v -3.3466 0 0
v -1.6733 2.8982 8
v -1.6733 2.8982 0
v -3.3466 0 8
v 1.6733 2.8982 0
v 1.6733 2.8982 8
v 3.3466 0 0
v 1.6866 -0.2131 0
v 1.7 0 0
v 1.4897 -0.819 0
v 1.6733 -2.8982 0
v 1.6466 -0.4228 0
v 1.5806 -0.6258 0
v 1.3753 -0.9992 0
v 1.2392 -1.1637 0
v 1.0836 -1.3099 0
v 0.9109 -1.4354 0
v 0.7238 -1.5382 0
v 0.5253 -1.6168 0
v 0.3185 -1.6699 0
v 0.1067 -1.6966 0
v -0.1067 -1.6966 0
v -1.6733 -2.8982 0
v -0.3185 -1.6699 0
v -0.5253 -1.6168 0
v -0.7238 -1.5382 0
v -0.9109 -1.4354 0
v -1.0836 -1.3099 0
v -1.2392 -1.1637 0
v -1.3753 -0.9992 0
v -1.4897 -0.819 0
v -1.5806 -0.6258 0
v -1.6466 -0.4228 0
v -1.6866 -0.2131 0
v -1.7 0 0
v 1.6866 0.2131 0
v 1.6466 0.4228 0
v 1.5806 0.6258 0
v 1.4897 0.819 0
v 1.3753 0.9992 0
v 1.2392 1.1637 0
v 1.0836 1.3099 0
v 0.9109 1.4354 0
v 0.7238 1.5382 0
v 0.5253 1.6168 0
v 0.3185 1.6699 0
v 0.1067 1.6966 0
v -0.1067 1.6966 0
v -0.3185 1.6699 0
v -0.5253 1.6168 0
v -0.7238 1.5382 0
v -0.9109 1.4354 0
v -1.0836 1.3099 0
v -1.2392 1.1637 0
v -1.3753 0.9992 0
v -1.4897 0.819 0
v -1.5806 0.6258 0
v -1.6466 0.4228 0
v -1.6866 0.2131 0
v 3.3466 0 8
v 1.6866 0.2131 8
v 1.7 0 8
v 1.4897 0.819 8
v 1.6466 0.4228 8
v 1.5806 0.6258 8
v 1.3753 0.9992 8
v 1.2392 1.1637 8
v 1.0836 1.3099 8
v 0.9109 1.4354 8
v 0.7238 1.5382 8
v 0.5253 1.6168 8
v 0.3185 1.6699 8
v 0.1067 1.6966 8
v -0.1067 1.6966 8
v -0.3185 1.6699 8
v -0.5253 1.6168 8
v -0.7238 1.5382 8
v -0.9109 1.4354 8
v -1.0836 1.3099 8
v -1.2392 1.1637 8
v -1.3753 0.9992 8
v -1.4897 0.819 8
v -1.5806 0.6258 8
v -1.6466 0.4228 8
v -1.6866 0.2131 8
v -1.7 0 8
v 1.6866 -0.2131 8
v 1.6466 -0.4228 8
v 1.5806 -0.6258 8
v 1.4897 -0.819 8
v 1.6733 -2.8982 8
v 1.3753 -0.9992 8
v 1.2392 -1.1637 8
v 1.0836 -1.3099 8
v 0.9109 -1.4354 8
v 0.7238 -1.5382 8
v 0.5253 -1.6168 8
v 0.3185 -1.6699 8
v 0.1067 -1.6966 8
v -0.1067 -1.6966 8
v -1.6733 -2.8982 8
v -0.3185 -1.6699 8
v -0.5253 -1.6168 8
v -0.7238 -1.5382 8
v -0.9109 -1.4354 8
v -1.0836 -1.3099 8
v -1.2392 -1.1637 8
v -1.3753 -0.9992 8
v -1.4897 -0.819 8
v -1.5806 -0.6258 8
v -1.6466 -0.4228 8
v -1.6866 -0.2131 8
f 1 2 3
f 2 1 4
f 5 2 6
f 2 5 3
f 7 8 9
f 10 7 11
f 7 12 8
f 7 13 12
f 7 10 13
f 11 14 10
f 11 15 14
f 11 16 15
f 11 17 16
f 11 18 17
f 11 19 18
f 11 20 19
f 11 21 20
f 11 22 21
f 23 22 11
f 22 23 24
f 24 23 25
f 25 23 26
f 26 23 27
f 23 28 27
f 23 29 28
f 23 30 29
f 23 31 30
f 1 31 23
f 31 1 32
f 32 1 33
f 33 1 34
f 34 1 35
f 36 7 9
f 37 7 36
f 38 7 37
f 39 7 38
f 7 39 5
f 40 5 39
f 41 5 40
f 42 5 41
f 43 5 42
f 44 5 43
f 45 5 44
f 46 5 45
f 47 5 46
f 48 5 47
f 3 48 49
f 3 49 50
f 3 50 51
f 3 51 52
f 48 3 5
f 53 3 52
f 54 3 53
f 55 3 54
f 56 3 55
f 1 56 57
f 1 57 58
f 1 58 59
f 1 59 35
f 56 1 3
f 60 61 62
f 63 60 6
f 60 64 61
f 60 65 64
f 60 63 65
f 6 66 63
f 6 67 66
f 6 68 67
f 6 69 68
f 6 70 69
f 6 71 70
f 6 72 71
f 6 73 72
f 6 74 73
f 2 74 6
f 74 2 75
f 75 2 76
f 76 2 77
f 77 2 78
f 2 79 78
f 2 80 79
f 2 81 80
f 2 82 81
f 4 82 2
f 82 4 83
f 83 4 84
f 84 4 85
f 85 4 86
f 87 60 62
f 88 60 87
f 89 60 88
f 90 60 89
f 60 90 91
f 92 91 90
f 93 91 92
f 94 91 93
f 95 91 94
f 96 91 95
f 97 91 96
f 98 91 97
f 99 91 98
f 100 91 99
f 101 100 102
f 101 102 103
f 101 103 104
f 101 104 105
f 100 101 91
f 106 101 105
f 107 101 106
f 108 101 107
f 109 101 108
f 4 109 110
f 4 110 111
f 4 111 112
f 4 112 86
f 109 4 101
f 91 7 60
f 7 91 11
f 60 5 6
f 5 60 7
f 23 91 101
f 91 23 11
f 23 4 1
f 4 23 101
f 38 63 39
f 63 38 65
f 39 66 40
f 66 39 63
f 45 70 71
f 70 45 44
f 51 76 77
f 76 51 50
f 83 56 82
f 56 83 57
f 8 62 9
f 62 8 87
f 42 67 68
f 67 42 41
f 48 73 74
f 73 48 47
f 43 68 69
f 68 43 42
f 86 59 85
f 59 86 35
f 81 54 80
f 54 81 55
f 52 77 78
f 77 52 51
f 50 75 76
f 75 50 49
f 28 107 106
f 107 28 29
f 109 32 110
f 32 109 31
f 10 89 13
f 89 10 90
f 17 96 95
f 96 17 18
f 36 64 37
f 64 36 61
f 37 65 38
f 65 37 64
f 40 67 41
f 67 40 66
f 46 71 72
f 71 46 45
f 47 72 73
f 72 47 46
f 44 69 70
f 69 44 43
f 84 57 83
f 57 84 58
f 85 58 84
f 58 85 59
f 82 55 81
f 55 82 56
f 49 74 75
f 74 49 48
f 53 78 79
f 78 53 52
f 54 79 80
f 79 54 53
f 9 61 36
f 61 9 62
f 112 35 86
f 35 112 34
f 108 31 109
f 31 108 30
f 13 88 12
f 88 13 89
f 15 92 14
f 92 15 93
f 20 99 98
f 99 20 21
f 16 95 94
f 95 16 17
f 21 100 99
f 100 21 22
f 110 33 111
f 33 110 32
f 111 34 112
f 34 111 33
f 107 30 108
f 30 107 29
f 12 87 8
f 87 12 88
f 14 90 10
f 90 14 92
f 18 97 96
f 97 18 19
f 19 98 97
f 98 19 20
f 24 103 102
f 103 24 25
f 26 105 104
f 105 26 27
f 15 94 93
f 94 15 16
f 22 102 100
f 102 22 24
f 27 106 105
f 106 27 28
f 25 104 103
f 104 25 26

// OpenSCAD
$fn = 50;


difference() {
	union() {
		translate(v = [0, 0, 0]) {
			rotate(a = [0, 0, 0]) {
				translate(v = [0, 0, 0]) {
					rotate(a = [0, 0, 0]) {
						linear_extrude(height = 8) {
							polygon(points = [[3.3466000000, 0.0000000000], [1.6733000000, 2.8982406163], [-1.6733000000, 2.8982406163], [-3.3466000000, 0.0000000000], [-1.6733000000, -2.8982406163], [1.6733000000, -2.8982406163]]);
						}
					}
				}
			}
		}
	}
	union() {
		translate(v = [0, 0, 0]) {
			rotate(a = [0, 0, 0]) {
				cylinder(h = 8, r = 1.7000000000);
			}
		}
	}
}
